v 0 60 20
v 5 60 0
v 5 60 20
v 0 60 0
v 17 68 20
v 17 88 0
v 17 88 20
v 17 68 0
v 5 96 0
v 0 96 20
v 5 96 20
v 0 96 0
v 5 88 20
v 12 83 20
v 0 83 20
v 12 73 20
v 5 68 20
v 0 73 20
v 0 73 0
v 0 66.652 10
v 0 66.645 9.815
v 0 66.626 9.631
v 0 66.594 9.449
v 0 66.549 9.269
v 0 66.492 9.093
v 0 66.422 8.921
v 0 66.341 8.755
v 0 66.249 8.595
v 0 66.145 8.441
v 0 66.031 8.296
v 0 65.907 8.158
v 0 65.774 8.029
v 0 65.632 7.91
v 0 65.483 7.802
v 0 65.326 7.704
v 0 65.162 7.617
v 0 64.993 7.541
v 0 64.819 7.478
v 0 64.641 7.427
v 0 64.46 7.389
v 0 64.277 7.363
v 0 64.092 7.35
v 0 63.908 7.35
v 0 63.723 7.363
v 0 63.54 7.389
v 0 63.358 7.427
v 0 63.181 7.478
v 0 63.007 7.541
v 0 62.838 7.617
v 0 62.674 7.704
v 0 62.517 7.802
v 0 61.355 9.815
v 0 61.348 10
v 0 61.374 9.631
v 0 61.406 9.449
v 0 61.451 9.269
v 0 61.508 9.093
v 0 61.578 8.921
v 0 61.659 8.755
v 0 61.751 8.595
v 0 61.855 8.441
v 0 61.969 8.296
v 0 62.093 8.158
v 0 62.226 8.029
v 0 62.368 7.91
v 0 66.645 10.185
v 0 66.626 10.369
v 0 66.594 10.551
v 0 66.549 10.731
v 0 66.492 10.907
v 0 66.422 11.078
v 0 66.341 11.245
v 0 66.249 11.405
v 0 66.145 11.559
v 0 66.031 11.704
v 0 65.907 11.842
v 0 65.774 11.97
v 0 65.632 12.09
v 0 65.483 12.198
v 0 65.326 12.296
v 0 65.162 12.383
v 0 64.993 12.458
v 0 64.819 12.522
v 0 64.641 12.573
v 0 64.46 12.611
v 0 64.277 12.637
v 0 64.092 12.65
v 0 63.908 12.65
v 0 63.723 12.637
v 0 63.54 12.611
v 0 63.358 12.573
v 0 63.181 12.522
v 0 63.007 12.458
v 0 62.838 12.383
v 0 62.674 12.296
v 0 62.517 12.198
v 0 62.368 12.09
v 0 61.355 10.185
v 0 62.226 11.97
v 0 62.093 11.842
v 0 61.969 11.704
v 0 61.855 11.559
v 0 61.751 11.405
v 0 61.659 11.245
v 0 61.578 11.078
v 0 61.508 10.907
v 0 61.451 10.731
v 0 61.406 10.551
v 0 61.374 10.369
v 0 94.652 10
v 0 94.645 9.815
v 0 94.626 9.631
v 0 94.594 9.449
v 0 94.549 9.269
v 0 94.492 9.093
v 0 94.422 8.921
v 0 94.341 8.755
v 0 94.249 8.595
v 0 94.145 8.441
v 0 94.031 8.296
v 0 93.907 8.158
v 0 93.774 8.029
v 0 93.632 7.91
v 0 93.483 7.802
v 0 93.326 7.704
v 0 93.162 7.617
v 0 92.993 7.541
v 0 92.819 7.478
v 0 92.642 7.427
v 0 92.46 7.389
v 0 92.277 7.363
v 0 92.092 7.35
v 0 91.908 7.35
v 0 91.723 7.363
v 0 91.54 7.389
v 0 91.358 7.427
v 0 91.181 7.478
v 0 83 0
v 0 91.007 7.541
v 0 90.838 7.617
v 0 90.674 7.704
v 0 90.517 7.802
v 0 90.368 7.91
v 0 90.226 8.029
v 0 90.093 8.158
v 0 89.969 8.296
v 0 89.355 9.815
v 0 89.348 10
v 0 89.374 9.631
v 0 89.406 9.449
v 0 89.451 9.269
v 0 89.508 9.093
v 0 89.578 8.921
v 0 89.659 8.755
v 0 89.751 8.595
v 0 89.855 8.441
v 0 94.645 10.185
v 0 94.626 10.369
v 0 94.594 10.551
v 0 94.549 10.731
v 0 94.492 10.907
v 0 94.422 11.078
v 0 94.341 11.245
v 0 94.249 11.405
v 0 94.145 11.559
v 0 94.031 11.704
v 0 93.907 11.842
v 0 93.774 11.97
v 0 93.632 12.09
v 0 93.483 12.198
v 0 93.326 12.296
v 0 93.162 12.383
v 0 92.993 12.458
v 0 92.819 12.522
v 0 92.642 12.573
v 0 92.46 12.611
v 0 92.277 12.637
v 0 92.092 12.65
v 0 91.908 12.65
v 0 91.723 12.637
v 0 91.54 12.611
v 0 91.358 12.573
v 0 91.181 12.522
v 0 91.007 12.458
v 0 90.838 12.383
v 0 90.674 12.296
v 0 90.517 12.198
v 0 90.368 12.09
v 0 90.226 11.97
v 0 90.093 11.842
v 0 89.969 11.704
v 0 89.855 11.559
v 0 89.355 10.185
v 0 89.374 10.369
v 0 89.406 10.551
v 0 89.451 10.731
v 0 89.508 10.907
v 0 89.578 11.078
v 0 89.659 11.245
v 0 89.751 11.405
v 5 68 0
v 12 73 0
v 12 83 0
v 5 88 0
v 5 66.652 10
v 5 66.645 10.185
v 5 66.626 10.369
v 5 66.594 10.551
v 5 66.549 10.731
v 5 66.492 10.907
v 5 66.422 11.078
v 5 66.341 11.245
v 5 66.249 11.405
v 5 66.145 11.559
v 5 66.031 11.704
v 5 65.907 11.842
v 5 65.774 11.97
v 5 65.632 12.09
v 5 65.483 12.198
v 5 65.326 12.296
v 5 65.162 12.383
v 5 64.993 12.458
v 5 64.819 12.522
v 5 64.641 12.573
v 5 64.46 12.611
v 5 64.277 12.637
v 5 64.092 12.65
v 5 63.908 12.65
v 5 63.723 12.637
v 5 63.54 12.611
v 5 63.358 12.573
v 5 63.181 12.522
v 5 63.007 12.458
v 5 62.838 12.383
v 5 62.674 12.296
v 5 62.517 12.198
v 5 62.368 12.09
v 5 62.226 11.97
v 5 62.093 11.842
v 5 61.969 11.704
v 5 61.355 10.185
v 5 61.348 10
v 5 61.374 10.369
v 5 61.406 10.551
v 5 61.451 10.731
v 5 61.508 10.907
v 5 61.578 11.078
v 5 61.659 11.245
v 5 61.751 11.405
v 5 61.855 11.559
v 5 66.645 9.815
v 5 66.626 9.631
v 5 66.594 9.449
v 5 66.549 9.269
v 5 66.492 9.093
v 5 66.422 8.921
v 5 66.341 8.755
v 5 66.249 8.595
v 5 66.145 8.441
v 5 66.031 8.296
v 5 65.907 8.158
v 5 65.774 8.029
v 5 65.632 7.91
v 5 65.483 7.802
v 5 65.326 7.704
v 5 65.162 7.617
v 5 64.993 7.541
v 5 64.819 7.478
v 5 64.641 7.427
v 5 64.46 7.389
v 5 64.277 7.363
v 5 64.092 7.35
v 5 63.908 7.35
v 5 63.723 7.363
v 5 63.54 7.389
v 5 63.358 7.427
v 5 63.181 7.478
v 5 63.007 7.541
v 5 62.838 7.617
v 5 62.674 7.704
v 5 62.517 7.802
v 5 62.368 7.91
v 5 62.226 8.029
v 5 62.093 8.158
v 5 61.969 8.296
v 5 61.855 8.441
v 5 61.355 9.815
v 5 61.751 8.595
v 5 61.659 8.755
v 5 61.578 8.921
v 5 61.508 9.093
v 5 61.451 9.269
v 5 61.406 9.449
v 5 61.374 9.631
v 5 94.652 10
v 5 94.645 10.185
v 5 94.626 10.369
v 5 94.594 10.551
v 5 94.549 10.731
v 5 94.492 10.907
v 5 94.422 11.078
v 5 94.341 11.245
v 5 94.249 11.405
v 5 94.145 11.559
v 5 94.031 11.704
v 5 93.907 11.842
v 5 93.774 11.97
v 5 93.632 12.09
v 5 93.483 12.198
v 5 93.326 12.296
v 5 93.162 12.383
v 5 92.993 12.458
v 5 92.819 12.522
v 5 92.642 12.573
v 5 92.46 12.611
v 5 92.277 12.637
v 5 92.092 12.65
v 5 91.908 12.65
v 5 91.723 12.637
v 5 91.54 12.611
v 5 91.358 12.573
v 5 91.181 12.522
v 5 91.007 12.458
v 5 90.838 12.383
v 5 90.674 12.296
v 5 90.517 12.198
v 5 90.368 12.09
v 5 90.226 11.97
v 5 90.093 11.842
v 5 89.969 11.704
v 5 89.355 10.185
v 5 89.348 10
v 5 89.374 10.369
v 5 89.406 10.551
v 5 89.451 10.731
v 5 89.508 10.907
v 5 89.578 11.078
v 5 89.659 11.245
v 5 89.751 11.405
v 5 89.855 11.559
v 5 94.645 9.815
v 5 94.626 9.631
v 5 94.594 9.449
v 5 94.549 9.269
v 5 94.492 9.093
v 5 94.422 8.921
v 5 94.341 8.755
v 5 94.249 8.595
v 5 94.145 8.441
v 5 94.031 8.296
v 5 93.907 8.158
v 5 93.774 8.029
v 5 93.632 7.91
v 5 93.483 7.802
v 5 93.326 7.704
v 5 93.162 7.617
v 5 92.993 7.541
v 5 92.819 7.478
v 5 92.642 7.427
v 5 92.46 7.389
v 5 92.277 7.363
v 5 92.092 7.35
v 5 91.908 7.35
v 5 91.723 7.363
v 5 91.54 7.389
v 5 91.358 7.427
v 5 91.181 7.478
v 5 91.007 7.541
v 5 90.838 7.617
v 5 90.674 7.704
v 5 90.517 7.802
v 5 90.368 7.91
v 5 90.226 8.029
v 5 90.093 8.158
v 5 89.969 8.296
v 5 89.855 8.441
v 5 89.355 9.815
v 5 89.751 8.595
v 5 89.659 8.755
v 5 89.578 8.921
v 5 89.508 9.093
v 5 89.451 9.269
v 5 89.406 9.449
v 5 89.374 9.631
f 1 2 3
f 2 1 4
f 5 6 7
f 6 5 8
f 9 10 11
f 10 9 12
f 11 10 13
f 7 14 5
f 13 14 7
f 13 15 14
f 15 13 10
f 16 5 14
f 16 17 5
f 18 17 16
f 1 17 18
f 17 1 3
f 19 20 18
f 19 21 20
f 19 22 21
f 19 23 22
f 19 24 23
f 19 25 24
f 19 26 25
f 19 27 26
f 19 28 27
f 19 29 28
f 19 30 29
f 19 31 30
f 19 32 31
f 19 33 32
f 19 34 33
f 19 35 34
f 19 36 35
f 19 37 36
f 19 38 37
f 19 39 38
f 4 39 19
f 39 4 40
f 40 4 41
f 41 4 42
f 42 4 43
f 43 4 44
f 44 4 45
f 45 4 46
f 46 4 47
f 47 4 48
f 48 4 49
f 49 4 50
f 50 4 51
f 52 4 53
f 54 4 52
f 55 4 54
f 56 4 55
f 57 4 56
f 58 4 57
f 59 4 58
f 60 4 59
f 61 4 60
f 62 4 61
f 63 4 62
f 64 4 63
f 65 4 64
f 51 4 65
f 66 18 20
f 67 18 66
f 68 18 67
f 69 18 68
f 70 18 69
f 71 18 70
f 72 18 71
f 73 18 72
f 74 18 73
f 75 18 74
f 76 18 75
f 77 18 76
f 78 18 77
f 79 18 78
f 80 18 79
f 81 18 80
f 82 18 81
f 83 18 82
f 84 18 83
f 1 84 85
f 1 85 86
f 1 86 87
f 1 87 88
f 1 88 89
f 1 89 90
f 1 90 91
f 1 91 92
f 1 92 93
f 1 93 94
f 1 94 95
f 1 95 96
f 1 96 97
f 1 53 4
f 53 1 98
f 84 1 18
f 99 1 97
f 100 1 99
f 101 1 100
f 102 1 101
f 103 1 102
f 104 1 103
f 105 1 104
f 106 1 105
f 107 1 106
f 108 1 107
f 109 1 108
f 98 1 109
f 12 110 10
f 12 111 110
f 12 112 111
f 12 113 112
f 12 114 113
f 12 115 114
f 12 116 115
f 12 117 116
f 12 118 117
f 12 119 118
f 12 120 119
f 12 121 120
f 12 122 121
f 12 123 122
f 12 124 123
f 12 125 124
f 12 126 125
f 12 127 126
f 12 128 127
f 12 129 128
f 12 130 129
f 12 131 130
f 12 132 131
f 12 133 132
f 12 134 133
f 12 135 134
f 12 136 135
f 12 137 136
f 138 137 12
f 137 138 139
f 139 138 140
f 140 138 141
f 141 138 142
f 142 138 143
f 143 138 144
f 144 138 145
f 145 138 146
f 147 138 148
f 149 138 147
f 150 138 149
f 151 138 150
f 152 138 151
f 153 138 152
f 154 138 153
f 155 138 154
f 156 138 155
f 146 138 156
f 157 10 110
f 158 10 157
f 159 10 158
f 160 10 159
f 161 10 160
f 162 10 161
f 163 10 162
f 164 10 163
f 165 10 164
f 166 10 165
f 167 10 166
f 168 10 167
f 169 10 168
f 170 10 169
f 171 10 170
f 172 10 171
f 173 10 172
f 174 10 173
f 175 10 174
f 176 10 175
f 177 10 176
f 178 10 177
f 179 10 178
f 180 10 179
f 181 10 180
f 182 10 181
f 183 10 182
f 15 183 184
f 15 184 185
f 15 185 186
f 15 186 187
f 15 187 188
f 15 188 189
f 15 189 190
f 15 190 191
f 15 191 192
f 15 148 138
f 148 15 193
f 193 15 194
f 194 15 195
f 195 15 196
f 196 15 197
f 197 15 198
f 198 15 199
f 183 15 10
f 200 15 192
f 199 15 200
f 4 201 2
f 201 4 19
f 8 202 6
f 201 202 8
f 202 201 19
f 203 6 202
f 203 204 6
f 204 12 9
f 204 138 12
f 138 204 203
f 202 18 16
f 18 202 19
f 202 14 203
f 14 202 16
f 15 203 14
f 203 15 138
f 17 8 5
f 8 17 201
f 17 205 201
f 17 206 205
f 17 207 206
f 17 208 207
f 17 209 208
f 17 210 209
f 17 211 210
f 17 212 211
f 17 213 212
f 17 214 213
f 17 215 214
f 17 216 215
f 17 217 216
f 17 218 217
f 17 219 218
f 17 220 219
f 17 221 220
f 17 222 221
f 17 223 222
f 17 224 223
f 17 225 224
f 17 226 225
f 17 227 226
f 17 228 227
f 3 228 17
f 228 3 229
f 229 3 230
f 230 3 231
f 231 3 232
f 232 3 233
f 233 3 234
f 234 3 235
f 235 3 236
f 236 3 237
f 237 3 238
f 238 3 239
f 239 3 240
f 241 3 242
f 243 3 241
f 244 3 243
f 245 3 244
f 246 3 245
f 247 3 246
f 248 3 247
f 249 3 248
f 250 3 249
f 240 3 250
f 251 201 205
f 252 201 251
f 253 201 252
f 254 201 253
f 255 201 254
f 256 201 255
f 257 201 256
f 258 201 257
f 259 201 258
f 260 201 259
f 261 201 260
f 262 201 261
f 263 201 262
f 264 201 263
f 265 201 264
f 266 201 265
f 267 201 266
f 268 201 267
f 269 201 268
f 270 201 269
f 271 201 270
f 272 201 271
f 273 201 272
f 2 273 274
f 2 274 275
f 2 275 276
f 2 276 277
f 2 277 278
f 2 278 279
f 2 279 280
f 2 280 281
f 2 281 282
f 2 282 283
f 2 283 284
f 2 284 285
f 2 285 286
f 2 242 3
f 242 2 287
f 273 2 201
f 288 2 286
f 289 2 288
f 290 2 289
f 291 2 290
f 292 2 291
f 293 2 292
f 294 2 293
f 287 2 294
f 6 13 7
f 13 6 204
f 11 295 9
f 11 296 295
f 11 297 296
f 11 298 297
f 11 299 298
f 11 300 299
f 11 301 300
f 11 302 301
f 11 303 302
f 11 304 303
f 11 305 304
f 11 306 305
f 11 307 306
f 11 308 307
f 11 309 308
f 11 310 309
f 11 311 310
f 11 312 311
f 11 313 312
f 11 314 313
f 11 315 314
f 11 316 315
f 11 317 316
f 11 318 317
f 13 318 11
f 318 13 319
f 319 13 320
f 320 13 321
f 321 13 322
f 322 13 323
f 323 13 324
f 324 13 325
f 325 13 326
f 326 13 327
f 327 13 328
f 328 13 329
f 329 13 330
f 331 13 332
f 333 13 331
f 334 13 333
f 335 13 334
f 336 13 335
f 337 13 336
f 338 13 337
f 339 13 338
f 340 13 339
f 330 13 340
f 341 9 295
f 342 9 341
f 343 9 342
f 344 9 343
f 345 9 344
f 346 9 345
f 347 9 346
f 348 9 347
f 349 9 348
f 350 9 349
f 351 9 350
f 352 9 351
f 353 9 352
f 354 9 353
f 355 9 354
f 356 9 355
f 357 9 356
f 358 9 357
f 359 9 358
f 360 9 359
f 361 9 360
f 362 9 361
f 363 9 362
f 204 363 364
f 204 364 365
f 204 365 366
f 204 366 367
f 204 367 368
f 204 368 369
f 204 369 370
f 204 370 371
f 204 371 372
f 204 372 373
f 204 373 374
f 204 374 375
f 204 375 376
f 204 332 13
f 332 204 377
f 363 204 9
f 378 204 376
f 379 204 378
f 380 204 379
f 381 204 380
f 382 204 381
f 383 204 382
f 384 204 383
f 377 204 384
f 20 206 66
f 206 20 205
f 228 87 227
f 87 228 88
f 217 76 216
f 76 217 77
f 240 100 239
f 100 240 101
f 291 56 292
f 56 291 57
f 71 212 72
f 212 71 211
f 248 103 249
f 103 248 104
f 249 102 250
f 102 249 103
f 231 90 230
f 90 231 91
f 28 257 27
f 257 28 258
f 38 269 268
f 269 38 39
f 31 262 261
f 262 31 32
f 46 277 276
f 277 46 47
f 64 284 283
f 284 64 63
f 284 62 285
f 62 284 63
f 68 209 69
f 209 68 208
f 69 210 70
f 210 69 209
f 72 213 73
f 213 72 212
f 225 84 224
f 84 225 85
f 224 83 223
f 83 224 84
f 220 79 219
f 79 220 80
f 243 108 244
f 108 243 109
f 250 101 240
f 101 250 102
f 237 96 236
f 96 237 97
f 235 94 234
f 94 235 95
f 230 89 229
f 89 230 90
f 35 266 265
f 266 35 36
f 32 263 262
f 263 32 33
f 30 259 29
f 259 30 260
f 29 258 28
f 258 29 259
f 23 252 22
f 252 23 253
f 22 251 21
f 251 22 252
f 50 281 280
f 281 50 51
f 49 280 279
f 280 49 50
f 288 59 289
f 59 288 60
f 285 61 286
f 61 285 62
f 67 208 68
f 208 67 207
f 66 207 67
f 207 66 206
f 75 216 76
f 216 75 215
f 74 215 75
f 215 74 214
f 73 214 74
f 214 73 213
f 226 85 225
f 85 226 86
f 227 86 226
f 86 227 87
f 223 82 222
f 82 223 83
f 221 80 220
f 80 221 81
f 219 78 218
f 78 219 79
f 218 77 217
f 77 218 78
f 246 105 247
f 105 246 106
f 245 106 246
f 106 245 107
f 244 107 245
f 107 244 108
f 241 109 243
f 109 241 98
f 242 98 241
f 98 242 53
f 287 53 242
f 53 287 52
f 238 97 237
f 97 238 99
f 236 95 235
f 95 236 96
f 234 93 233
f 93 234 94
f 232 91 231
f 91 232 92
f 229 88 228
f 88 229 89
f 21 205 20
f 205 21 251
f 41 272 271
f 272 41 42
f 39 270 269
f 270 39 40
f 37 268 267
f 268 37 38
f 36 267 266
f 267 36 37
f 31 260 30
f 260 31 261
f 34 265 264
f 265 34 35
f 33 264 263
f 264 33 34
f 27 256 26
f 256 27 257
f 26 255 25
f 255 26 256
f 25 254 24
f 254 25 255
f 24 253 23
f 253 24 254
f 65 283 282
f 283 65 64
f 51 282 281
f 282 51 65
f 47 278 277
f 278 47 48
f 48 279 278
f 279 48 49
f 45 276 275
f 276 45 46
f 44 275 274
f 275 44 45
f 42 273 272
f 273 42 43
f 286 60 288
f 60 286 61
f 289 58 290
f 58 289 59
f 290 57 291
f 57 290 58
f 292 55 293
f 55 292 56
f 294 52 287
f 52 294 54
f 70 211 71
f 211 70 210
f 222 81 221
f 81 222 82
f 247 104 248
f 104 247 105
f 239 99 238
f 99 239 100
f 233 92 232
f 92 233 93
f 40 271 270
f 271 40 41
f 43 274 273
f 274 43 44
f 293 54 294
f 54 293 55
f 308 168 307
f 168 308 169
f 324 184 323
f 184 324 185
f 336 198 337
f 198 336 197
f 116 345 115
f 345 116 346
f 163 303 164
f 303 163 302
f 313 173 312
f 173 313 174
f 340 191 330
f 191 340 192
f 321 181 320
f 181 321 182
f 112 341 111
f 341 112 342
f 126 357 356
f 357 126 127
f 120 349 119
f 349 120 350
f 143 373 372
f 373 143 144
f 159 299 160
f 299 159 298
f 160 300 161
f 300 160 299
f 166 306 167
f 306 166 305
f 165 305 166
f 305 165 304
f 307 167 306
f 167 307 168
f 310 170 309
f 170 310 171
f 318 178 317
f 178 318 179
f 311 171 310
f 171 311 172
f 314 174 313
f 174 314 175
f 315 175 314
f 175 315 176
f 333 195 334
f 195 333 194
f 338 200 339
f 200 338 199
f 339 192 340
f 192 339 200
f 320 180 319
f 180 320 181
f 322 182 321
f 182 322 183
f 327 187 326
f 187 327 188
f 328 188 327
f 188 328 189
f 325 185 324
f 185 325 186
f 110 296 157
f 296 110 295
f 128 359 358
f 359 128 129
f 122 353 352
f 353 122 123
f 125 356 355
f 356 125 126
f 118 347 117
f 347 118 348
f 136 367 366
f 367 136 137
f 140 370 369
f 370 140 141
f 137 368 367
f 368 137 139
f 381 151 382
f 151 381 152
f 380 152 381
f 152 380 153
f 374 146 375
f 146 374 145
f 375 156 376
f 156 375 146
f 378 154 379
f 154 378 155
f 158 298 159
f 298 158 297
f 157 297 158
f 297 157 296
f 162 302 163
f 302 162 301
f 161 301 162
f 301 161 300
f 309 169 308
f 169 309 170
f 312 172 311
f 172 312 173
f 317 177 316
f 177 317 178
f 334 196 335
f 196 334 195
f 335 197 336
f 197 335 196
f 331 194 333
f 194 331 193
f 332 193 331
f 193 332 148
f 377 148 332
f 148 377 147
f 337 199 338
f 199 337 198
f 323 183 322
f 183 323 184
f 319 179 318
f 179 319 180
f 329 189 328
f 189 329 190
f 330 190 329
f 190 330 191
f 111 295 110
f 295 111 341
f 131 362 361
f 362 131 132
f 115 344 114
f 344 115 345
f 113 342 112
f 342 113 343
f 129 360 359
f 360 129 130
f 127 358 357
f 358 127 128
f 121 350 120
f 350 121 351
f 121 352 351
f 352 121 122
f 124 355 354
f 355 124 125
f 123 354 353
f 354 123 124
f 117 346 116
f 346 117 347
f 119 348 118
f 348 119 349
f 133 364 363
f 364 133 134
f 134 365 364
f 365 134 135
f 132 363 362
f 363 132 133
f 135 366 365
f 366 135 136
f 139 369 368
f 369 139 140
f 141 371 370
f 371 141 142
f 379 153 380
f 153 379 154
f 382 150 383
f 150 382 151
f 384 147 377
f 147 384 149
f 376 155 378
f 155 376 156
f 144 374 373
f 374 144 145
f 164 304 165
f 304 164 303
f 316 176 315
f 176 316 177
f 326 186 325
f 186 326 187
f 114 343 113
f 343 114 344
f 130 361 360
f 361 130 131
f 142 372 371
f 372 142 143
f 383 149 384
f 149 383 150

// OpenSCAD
// file: inc/polyarc.scad
// Adapto Flex is licensed under the Creative Commons - GNU GPL license.
// http://creativecommons.org/licenses/GPL/2.0/
// Originated from Adapto https://github.com/rotorit/Adapto
include <./configuration.scad>

// Concepts pulled and modified to suit needs from
// http://hydraraptor.blogspot.com/2011/02/polyholes.html
// and
// http://reprap.org/wiki/ArcCompensation

// proper poly compensation for a cylinder including the config file $fn value
// this one is probably not needed but lets use it anyway
module polycyl(d, h){
	cylinder(r=(d/2)/cos(180/$fn), h=h);
}

// proper poly compensation when drilling a hole
module polyhole(d, h){
	cylinder(r=(d/2)/cos(180/$fn)+0.05, h=h);
}

// proper poly compensation for a 6 sided nut(measured flat to flat)
module polynut(d, h){
	cylinder(r=(d/2)/cos(180/6)+0.05, h=h, $fn=6);
}
// file: inc/configuration.scad
// Copyright (C) 2012 t00tie
// Adapto is licensed under the Creative Commons - GNU GPL license.
// http://creativecommons.org/licenses/GPL/2.0/

//==========================================================================//
// Configuration file for Adapto OpenSCAD files                             //
// Scroll past the definition section to change basic and advanced settings //
//==========================================================================//

//====================//
// Definition Section //
//====================//
// Frame and Walls
// frameX and frameY are the dimensions of the frame material when viewed on end(the end of an extrusion looks roughly like an X)
// frameX is the width of the frame material
// frameY is the height of the frame material
//   x
//  [ ]y
// these are used to find offsets for screw placing so screws meet the (slot in the) middle of the frame
frameX=20;// width of the frame material(alu, wood etc.)
frameY=20;// height of the frame material

// Print the hole_calibration.scad object to dial in the next 6 settings
// Google found http://www.fairburyfastener.com/xdims_metric_nuts.htm
M8=8.4;// diameter of M8 threaded rod
M5=5.3;// diameter of M5 threaded rod
M3=3.4;// diameter of M3 threaded rod
M8nut=13;// diameter of M8 nut flat to flat
M5nut=8;// diameter of M5 nut flat to flat
M3nut=5.6;// diameter of M3 nut flat to flat

M8nutThickness=6.8;// thickness of a standard M8 nut(nylock is 8mm)
M5nutThickness=4.7;// thickness of a standard M5 nut(nylock is 5mm)
M3nutThickness=2.4;// thickness of a standard M3 nut

// Acme Linear Screw and Nut
ACME14=6.5;// diameter of 1/4 inch ACME threaded rod in mm
ACME14nut=12.8;// diameter of ACME 1/4 inch nut flat to flat in mm
ACME14nutThickness=6.5;// thickness of ACME 1/4 inch nut in mm


// Linear Bearings
// format is IDxODxL
lm8uu=[8, 15, 24];
lm10uu=[10, 19, 29];
lm10luu=[10, 19, 55];
lm12uu=[12, 21, 30];

//rotary bearings
// format is IDxODxL
xx623=[3, 10, 4];
MF204=[4, 10, 4];
MF126=[6, 12, 4];
rotaryBearing=xx623;// for readability(can be changed if other bearings are used

//====================//
// Basic Config Items //
//====================//
smoothRod=8;				// diameter of smooth rods in mm
linearBearing=lm8uu;	// change this to the linear bearing you are using from the definitions section
zRod=M8;				// change this to the z threaded rod you are using from the definitions section
zRodnut=M5nut;		// change this to the z nut you are using from the definitions section
zRodnutThickness=M5nutThickness;	// change this to the z nut thickness you are using from the definitions section


//=======================//
// Advanced Config Items //
//=======================//
$fn=90;		// default resolution for parts, decrease if part compiling or stl/gcode is unmanageable
thickness=5;		// thickness of walls etc. in parts
pullyDiameter=12.2;	// GT2-20 toothed section diameter

// center of Z drive rod, relative to z travel rod
shaft_offset=[40, 15];
x_rod_thickness=20;
length_to_hole=43;
bearing_to_vslot=9.63;
belt_z_space = 16;
rail_separation = belt_z_space + x_rod_thickness + 2; // minimum space between the top and bottom 
tolerance=0.2;
// main file
// Adapto is licensed under the Creative Commons - GNU GPL license.
// http://creativecommons.org/licenses/GPL/2.0/
include <./inc/configuration.scad>
use <./inc/polyarc.scad>

*rotate([0,0,-90])yIdler(length=40,width=3);

rotate([90, 0, 90])
    yIdler_Retainer(height=2);

*translate([40,40,0])rotate([90, 0, 90])
    yIdler_Retainer();
module yIdler(length=10, width=0){
    
    difference(){

	union(){
	    
    hull(){
      cube([frameY+thickness*4, 1, rotaryBearing[1]]);
      translate([0, length+frameX+15+rotaryBearing[1]/2, rotaryBearing[1]/2])
		    rotate([0,90,0])
        polycyl(d=rotaryBearing[1], h=frameY+thickness*4);
    }
		
	}// end union
	
	// cutout to make arms
	translate([thickness*2-(width/2), 10, -1])
	    cube([frameY+width, frameX+length+5, rotaryBearing[1]+2]);
	
	// cutout to narrow for bearings
	translate([thickness*2+frameY/2-(rotaryBearing[2]*2+1)/2, length+frameX, -1])
	    cube([rotaryBearing[2]*2+1, frameX+15, rotaryBearing[1]+2]);
	
	// tensioner bolt and nut trap
	translate([thickness*2+frameY/2, -1, rotaryBearing[1]/2])
	    rotate([-90, 0, 0])
	    polycyl(d=M5, h=frameX);
	translate([thickness*2+frameY/2, 8, rotaryBearing[1]/2])
	    rotate([-90, 0, 0])
	    polynut(d=M5nut, h=frameX);
	
	// bearing bolt hole
	translate([-1, length+frameX+15+rotaryBearing[1]/3, rotaryBearing[1]/2])
	    rotate([0, 90, 0])
	    polycyl(d=rotaryBearing[0], h=frameY+thickness*4+2);

    }// end difference

}

module yIdler_Retainer(height=0){
    
    difference(){

	union(){
	    
	    translate([frameY+thickness*4+20, 0, 0])
		cube([rotaryBearing[1]+thickness*2+M5nut*2, frameX, height+thickness*3]);
		
	}// end union
	
	// cutout to capture tensioner
	translate([frameY+thickness*4+20+M5nut+thickness, -1, -1])
	    cube([rotaryBearing[1], frameX+2, height+thickness*2+1]);
	
	// bolt flats
	translate([frameY+thickness*4+20-1, -1, thickness])
	    cube([M5nut+1, frameX+2, thickness*2+1+height]);
	translate([frameY+thickness*4+20+thickness*2+M5nut+rotaryBearing[1], -1, thickness])
	    cube([M5nut+1, frameX+2, height+thickness*2+1]);
	
	// bolt holes
	translate([frameY+thickness*4+20+M5nut/2, frameX/2, -1])
	    polycyl(d=M5, h=frameX);
	translate([frameY+thickness*4+20+thickness*2+M5nut+rotaryBearing[1]+M5nut/2, frameX/2, -1])
	    polycyl(d=M5, h=frameX);

    }// end difference

}
